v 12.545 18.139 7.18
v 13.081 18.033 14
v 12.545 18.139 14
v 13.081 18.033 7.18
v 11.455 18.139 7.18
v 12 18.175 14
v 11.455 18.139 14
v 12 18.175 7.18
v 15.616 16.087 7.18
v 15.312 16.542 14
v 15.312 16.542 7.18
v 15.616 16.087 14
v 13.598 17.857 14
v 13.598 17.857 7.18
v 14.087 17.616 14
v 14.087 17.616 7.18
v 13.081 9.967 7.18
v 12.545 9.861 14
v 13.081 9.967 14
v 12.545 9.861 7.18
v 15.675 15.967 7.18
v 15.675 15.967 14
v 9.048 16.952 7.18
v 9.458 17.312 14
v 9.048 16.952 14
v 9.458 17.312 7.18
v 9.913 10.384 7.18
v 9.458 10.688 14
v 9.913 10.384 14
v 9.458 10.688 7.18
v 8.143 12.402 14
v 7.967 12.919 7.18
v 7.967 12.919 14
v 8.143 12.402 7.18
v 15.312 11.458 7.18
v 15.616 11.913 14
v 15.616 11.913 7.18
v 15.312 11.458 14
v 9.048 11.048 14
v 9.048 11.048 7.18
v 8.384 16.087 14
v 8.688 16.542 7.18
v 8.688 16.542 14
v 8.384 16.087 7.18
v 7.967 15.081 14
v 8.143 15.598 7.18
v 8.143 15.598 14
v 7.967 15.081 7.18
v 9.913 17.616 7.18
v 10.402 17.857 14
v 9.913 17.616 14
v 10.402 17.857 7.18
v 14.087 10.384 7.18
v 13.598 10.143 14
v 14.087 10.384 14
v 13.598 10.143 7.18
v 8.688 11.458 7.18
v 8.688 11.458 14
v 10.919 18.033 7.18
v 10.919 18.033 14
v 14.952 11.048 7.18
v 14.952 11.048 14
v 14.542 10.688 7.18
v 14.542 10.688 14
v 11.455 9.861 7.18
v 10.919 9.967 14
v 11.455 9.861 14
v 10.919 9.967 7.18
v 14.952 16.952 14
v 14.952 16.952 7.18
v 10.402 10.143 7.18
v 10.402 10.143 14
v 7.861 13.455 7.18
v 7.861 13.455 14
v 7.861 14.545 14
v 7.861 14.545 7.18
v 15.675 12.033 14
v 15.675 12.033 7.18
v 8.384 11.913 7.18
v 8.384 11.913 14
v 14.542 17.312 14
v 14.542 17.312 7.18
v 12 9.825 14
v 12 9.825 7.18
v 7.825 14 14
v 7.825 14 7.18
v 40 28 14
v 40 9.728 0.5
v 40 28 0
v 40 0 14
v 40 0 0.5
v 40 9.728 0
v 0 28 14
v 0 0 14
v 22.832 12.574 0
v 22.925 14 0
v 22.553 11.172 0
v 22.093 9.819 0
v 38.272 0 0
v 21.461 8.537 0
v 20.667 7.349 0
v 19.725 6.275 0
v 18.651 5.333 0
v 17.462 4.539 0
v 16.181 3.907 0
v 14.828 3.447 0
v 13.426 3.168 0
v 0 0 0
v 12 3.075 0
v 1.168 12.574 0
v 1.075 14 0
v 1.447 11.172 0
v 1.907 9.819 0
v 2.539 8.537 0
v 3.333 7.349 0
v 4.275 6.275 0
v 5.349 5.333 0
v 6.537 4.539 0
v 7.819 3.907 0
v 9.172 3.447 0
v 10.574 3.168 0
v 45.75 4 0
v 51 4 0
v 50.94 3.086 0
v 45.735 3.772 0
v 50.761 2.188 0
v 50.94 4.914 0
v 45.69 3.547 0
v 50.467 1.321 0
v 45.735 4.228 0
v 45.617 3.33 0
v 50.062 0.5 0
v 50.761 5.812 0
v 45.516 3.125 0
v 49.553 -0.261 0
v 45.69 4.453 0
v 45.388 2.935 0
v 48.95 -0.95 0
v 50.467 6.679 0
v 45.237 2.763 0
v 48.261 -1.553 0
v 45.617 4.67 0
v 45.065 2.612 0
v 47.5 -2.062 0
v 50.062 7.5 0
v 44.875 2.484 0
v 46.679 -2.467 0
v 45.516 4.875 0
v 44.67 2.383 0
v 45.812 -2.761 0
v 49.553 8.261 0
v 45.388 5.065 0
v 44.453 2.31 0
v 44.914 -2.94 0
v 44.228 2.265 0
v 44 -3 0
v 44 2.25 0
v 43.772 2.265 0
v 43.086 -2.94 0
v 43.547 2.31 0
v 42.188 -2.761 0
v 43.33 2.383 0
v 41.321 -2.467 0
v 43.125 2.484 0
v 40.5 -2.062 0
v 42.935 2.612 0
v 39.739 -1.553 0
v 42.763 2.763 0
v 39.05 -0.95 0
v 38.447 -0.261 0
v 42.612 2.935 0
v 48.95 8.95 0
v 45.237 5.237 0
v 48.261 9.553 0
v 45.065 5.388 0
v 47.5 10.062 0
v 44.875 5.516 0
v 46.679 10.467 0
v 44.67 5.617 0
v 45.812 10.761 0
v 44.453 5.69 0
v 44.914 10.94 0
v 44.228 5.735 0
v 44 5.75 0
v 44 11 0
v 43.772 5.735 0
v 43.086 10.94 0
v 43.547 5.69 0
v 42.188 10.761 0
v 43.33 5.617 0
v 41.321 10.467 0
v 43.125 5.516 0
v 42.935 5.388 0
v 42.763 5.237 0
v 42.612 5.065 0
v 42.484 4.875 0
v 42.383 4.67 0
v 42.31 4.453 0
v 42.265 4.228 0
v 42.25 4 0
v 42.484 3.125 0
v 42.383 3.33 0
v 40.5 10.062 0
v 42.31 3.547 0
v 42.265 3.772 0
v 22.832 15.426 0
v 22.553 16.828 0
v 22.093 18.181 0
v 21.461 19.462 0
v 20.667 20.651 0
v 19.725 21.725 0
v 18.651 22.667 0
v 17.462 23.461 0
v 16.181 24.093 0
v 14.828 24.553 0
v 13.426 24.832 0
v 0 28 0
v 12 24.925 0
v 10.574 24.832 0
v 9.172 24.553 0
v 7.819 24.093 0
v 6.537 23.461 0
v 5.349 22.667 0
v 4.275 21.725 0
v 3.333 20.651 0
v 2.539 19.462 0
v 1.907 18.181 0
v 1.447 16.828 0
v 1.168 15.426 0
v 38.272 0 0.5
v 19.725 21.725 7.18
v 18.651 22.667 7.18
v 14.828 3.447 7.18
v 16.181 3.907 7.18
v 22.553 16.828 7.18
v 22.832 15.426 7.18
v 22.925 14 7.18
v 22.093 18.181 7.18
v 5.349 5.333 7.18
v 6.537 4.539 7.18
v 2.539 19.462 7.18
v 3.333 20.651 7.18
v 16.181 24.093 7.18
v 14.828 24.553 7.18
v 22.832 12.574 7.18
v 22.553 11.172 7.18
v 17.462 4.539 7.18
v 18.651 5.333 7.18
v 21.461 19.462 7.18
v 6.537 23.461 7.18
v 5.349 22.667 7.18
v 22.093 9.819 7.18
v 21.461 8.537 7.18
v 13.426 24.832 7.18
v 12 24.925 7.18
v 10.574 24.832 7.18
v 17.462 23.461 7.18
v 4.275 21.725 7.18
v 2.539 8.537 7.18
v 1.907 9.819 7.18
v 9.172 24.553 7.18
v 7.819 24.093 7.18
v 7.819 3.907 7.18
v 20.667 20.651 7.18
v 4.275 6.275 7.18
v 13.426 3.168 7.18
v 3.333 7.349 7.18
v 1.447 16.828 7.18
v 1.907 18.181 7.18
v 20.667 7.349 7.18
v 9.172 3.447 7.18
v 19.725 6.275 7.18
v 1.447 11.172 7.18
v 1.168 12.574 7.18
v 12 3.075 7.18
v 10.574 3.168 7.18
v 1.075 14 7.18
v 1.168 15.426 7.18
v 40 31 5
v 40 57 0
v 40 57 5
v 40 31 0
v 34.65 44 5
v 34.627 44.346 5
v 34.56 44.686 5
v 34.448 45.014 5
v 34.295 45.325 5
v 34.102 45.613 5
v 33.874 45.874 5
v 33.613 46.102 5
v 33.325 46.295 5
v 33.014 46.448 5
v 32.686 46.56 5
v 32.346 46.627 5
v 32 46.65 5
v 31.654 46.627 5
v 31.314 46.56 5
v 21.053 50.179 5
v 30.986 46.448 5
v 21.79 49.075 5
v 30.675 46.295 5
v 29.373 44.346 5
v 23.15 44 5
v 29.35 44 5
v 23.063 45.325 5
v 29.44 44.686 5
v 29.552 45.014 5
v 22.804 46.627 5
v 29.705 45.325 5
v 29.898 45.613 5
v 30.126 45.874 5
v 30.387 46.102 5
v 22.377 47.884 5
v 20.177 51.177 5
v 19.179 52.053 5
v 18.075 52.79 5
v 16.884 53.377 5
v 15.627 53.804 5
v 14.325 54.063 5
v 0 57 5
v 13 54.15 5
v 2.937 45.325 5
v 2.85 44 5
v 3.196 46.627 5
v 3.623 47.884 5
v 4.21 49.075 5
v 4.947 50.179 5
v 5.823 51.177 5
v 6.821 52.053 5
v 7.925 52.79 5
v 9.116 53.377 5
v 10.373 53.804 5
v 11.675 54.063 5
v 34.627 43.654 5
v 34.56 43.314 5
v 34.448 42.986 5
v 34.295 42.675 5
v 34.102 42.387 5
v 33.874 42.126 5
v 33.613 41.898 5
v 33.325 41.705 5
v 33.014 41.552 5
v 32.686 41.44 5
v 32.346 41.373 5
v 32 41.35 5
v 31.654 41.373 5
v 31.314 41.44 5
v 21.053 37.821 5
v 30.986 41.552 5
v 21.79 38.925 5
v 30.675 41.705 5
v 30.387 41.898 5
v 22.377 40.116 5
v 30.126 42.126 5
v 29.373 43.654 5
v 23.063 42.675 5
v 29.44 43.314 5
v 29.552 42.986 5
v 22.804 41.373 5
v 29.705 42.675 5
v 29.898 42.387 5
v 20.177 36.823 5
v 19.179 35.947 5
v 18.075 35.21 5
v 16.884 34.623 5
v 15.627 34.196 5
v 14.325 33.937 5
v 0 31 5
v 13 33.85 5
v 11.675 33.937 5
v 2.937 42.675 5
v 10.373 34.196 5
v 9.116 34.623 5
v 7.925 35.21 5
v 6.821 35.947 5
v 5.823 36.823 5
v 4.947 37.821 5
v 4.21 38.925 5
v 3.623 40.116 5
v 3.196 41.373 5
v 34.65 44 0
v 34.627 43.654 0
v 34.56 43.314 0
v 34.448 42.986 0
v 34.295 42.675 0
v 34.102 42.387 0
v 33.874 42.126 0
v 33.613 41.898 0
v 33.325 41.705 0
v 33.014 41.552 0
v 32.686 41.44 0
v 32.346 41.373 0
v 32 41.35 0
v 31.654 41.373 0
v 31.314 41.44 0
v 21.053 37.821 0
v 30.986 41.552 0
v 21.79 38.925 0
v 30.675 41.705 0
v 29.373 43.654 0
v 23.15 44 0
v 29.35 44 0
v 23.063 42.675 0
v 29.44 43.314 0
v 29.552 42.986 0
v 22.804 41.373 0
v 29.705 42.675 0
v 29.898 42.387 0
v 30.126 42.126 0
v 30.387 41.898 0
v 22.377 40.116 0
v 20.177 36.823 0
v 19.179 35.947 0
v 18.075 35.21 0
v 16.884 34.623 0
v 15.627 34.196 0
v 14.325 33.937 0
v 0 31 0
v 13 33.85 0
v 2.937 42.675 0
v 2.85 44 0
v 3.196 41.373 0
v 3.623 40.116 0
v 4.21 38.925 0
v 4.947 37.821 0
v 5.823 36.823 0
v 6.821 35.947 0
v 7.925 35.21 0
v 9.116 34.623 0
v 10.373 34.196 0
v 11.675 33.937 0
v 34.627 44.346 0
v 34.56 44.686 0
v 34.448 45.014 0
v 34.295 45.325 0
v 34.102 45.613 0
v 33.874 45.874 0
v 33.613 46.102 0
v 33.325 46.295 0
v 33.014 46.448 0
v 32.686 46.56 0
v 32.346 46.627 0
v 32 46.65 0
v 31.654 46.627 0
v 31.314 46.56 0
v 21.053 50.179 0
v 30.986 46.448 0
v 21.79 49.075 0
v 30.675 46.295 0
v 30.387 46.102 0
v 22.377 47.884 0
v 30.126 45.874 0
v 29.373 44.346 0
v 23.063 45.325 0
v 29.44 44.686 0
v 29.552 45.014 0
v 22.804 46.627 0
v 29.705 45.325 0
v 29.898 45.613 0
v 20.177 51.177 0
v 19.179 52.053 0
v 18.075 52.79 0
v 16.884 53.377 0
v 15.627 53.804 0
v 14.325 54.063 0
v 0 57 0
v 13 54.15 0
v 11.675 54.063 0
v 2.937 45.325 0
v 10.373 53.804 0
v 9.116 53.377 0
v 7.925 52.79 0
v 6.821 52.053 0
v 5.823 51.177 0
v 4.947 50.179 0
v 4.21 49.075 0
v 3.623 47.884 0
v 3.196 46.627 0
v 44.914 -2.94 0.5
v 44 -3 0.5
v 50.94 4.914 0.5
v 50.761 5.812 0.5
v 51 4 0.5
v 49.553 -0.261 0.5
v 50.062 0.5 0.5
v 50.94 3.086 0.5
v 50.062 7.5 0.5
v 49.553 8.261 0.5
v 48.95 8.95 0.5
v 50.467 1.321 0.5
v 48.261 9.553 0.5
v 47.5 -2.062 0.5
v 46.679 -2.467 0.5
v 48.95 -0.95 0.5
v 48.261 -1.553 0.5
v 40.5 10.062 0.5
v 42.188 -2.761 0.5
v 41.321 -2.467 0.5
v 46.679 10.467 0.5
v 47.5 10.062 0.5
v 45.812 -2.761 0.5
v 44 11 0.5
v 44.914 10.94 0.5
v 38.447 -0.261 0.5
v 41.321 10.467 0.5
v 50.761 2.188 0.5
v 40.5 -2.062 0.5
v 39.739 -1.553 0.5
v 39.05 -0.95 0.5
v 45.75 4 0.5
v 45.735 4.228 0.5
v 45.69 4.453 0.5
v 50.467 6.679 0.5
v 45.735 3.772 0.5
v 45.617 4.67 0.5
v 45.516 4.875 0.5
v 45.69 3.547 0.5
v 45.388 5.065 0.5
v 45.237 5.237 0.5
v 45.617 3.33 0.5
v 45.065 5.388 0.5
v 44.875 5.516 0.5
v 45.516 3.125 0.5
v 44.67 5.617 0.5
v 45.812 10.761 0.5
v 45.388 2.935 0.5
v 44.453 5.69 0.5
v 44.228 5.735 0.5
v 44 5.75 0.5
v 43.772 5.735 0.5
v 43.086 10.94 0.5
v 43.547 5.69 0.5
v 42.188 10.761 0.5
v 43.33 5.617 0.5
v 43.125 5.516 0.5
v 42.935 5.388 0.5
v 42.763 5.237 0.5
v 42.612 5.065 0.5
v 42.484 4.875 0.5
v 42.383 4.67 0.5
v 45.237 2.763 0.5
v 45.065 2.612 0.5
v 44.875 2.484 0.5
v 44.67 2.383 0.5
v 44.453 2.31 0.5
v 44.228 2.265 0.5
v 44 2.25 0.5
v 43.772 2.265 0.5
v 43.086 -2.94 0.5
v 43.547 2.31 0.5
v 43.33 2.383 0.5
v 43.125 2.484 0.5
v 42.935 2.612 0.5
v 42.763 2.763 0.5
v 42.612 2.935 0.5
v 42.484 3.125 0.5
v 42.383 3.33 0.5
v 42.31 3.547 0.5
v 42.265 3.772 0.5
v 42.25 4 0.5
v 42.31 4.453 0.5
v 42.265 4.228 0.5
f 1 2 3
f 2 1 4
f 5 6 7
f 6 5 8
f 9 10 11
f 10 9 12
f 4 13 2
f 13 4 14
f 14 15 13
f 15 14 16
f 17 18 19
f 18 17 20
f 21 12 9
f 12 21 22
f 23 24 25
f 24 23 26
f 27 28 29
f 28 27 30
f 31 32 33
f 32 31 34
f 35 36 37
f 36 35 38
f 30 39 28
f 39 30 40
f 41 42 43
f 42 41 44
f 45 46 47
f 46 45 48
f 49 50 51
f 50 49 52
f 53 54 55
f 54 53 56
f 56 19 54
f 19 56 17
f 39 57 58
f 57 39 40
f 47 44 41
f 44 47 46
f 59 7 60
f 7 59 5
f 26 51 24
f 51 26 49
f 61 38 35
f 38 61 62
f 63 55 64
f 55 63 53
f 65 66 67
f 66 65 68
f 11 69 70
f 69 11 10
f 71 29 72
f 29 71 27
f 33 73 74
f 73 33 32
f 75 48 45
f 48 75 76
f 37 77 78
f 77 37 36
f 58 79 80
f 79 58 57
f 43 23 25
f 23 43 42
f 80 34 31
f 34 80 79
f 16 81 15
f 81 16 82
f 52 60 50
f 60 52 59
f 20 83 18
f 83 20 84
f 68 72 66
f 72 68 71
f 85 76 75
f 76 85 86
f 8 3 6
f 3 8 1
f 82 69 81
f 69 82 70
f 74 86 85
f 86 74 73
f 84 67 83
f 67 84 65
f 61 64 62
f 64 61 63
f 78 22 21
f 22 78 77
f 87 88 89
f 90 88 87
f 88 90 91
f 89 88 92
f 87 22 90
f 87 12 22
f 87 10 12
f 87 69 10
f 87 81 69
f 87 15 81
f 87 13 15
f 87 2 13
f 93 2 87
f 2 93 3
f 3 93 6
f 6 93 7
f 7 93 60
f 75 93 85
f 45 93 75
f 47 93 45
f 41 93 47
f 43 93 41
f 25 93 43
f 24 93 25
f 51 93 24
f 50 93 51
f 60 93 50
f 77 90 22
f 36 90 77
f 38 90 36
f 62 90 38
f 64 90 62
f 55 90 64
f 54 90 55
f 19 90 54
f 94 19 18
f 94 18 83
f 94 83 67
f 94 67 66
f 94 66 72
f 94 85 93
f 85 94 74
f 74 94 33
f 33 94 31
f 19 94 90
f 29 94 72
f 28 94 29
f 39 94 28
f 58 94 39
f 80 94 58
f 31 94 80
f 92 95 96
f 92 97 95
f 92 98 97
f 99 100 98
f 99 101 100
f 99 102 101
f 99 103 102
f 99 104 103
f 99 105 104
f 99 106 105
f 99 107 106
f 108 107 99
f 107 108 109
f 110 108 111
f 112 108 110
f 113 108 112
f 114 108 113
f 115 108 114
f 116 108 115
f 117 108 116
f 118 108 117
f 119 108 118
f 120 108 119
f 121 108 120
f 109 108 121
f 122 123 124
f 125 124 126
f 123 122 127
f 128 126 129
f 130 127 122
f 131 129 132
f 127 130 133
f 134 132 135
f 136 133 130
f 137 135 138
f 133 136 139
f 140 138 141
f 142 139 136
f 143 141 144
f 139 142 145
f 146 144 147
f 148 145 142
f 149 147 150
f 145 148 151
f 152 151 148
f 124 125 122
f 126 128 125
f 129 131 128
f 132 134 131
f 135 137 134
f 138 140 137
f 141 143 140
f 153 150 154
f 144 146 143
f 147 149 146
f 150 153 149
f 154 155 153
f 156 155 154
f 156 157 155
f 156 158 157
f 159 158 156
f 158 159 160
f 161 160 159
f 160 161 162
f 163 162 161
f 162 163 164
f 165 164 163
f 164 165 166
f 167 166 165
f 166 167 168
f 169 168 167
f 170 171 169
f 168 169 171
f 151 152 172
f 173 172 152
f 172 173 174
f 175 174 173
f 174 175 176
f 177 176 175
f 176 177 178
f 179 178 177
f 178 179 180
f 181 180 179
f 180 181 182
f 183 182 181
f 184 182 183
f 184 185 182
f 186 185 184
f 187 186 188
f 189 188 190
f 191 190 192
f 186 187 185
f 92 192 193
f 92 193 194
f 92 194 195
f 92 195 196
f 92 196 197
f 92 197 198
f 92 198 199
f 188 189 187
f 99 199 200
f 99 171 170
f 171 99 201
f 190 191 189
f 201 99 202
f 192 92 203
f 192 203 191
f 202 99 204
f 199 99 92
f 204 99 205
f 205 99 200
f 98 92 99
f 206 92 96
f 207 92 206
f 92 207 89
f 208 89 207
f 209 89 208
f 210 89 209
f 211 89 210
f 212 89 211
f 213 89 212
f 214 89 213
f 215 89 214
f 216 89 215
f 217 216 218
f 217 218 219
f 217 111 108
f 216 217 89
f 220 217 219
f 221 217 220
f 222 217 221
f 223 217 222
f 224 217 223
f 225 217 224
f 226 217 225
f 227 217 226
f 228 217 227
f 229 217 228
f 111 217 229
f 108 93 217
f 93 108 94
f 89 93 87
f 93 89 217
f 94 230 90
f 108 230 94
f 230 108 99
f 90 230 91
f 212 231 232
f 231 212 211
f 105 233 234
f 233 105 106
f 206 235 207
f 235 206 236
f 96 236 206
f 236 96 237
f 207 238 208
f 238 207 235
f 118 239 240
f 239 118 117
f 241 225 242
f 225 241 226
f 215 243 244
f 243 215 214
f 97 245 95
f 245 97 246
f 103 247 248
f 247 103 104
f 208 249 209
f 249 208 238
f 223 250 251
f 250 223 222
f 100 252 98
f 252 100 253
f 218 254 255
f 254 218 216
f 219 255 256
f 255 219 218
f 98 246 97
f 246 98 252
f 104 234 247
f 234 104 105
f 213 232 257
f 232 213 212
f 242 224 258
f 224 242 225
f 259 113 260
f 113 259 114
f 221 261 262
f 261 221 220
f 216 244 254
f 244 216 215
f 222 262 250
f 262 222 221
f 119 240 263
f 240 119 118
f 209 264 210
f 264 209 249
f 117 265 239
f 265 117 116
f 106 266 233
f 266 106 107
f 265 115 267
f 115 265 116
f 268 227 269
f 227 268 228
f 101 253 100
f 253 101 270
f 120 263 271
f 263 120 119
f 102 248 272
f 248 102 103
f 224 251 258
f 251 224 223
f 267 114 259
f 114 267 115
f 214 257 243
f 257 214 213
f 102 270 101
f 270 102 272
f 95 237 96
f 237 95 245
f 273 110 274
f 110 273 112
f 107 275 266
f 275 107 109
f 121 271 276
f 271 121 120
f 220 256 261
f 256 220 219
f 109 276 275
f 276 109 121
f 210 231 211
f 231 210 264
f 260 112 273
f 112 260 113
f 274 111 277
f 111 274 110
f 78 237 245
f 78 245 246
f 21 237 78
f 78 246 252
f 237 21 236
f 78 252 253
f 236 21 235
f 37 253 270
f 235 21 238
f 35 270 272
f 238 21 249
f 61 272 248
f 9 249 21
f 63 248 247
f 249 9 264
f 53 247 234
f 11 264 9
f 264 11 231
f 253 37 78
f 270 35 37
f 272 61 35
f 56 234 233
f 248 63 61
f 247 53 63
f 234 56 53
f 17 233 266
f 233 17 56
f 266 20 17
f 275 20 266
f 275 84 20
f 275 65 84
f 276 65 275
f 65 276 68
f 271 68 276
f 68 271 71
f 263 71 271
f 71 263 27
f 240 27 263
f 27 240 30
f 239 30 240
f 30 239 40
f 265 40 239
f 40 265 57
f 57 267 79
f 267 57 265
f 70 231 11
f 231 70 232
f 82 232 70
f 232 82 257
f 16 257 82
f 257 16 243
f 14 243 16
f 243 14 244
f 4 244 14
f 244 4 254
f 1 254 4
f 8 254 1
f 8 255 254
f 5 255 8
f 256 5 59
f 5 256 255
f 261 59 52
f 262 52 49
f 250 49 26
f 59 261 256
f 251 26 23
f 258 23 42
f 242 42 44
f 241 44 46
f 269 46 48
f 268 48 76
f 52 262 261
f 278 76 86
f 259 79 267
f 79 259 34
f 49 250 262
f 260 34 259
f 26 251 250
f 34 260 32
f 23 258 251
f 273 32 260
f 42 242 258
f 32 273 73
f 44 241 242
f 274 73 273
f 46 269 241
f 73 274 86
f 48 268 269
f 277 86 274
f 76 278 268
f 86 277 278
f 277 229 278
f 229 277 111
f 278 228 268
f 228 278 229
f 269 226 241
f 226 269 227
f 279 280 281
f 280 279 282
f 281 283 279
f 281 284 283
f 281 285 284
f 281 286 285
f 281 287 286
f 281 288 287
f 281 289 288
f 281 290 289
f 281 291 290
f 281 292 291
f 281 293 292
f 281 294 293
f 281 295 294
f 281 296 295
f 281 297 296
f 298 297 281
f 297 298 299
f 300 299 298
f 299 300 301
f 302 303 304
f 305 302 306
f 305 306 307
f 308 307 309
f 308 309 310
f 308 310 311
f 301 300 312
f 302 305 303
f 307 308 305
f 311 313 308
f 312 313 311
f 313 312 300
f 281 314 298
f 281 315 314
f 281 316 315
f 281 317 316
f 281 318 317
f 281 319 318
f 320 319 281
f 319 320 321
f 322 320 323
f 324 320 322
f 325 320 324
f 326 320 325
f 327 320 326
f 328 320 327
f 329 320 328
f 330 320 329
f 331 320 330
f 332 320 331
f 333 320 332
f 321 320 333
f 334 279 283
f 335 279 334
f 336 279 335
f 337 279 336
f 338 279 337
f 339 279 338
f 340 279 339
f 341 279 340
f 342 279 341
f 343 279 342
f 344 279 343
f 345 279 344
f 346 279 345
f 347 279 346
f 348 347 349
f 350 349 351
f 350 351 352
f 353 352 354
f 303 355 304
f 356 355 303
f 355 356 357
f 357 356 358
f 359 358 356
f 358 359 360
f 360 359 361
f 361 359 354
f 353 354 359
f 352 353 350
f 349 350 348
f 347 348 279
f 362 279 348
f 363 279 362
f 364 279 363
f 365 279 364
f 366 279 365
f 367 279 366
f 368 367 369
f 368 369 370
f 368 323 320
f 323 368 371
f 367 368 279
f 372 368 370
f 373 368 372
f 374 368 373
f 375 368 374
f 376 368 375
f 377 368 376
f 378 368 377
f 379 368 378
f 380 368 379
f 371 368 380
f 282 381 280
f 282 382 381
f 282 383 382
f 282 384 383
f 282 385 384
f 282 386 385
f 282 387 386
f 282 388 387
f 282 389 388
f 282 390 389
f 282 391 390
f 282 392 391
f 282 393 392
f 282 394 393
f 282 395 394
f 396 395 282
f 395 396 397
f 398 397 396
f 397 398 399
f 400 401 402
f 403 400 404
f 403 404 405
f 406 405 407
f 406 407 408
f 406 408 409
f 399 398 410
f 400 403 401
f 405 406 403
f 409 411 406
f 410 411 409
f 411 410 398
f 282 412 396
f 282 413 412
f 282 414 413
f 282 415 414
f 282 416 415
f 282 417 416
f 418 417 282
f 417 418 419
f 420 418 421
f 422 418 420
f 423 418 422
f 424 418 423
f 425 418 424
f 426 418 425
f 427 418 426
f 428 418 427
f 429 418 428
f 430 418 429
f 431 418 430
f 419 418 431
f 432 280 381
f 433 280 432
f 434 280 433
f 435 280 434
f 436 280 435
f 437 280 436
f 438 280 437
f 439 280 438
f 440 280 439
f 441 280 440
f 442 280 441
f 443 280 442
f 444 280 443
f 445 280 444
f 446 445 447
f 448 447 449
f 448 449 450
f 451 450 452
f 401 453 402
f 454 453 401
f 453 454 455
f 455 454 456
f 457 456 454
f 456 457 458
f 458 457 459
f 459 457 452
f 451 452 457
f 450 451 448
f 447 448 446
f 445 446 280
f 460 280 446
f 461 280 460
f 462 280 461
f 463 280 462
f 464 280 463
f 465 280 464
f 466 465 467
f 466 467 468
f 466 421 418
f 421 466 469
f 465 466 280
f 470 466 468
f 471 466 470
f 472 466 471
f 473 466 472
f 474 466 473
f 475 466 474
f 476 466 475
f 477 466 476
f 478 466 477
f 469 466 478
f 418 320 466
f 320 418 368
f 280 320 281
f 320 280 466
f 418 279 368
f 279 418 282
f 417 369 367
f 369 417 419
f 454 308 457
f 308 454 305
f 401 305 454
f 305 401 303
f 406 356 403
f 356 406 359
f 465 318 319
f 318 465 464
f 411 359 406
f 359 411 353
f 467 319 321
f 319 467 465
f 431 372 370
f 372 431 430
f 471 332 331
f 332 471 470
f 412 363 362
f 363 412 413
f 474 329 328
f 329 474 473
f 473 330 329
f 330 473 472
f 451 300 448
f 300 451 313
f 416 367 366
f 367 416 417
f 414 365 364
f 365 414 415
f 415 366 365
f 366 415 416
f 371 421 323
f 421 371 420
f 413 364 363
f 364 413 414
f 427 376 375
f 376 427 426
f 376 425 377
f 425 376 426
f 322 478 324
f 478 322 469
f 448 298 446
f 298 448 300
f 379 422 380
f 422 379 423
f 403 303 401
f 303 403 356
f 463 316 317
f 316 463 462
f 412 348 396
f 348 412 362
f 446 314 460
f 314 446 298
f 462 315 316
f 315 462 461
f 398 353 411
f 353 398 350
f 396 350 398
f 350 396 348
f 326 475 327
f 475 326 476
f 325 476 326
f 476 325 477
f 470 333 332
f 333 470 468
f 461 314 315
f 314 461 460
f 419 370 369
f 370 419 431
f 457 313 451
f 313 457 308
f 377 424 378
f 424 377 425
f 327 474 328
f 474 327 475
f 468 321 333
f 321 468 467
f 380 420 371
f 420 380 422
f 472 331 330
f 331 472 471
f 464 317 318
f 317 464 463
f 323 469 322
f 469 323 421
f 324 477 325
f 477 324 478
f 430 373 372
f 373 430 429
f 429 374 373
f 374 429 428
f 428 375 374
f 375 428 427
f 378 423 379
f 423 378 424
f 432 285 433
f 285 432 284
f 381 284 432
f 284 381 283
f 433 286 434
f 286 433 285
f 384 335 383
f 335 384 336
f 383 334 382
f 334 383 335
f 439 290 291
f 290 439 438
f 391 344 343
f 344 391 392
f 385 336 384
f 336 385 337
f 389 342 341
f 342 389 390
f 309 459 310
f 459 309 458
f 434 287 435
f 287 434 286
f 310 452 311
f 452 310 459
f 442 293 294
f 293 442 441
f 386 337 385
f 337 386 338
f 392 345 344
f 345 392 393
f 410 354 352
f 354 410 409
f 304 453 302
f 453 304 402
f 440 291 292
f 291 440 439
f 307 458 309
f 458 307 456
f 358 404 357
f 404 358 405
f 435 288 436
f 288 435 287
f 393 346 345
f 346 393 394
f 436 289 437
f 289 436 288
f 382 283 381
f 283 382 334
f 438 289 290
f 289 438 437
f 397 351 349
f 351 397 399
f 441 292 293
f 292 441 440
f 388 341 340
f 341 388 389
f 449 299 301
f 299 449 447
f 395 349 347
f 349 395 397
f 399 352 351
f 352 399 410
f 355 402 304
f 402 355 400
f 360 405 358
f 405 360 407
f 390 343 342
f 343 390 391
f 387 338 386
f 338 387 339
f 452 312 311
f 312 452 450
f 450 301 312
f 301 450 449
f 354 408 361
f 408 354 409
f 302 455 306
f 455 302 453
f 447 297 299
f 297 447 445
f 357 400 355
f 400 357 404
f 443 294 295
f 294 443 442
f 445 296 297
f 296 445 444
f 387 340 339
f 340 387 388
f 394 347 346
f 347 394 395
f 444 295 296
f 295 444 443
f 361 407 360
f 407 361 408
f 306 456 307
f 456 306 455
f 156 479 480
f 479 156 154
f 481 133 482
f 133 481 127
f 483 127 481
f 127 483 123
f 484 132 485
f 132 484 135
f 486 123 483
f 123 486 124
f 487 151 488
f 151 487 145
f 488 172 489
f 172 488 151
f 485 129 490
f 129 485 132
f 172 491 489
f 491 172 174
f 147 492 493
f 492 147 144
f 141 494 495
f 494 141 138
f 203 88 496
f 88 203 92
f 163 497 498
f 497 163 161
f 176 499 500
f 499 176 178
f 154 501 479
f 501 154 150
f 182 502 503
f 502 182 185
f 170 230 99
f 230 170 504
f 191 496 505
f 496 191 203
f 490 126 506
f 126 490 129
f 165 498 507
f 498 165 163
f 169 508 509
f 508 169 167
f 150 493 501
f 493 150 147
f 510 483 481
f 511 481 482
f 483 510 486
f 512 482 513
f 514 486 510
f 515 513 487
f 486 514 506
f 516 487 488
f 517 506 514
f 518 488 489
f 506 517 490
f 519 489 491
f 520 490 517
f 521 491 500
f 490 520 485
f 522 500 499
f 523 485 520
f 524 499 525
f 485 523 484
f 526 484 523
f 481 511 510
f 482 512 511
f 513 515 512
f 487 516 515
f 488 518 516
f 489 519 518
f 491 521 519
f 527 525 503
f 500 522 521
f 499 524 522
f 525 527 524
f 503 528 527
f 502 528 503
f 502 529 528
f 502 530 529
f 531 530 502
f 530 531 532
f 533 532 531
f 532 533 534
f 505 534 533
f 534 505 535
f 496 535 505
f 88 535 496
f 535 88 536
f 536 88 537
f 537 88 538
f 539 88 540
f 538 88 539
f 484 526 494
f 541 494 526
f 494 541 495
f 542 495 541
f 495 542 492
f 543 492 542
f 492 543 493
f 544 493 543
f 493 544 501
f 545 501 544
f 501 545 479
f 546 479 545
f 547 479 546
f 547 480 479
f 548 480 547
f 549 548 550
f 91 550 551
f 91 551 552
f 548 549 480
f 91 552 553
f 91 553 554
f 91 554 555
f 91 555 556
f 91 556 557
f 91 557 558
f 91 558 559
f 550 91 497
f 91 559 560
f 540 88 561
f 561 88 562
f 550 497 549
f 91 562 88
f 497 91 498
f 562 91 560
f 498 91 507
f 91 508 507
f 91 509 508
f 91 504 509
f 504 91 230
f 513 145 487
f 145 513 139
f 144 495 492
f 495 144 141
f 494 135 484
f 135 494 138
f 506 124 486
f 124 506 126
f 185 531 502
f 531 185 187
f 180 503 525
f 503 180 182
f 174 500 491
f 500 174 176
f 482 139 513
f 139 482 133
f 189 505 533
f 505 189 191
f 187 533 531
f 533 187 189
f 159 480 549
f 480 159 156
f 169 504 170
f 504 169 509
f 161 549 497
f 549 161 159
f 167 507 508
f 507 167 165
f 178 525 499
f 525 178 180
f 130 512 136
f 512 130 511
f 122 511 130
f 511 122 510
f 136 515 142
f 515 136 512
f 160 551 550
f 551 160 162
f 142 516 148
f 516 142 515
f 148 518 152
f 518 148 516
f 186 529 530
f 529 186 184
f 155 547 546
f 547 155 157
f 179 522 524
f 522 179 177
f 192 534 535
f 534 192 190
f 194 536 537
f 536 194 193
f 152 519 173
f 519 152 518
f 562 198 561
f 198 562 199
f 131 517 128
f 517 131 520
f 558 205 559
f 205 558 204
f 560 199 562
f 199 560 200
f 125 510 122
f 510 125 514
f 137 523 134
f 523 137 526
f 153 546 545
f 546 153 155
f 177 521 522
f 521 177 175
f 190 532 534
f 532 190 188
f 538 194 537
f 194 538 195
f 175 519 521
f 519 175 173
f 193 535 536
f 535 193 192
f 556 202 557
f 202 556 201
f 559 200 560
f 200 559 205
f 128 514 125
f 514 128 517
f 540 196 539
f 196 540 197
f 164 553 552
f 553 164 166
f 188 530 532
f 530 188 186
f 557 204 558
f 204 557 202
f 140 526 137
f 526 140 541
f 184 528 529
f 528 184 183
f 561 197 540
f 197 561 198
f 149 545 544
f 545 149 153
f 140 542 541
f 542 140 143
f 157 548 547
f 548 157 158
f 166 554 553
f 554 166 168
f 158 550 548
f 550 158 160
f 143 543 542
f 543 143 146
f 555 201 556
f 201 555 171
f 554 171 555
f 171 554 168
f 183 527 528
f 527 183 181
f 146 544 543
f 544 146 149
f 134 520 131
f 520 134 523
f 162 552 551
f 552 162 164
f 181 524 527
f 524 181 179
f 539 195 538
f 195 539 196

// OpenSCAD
// file: parameters.scad
// =============================================================================
// Gen-BU — nightly 2026-10-10 (physics_scorer, honest magpylib watts)
// New pole/coil ratio on a much bigger ring: twelve narrow 26.4° bobbins (r 52–82 mm, 13.5 mm build, 8.1 mm copper) under 8 poles pushed out to R66, so each coil spans 120° electrical with a short mean turn while the poles sit 52 mm apart (less pole-to-pole leakage) and move faster. 8p/12c was dismissed on earlier nights at 3.2 W because it was only scanned on the R50 ring; tonight it climbs steadily with ring radius (R50 3.39 → R57 4.58 → R59.5 5.18 → R66 6.08 W scan). Diametric Ø5 assists turned out to LOWER this layout, so none are fitted. A ring this big no longer fits a one-plate layout with disc endbells, so the endbells become two crossed 44 mm bar bearing bridges, which is what keeps it on one 410 mm plate.
// Clocking 0 deg (magnets N facing S) + D-flat keyed bore + index notch + flip-symmetric hole map.
// Windable 2-piece bobbin; turns = physics_scorer turns_fit; copper only between flanges.
// Steel back-iron: 2× Ø158 × 4.76 mm (3/16") mild-steel discs (steel_backiron_disc.dxf); magnets sit ON the steel
// (through-pockets) -> score with --back-iron. Night 2026-10-10.
// =============================================================================
topology            = "dual_rotor";

// --- Wire / winding (physics_scorer winding-fit) -------------------------------
wire_awg            = 26;
wire_od             = 0.45;     // insulated OD mm (bare 0.405)
fill_realistic      = 0.65;     // insulated-wire area / window (DENSE layered wind with a jig; scorer cap 0.65)
turns               = 446;       // = physics_scorer turns_fit (do NOT raise)
coil_former_type    = "bobbin";
coil_core_inset     = 13.50;     // radial copper build: hub = copper boundary inset by this
wind_build_axial    = 0.0;      // nothing proud of the flanges
wind_build_radial   = 0.0;

// --- Bobbin (base + lid) ---------------------------------------------------------
coil_id_r           = 52.00;    // copper boundary sector
coil_od_r           = 82.00;
span_deg            = 26.36;    // = pitch - 2*asin((wall+0.85)/coil_id_r) -> >=1.2 mm stator web
former_web          = 8.10;     // copper height between flanges (TALL copper: steel keeps Bz up)
flange_t            = 0.80;     // >= 0.8 mm FDM wall rule (tall winds push on the flanges)
wall                = 0.80;     // flange lip beyond copper
former_bare_h       = former_web + 2 * flange_t;
coil_envelope_h     = former_bare_h + 2 * wind_build_axial;
tab_w               = 7.0;
tab_len             = 7.0;
tab_h               = former_bare_h / 2;
pin_d               = 1.9;      // 1.75 mm filament locating pin
coil_mount_r        = coil_od_r + 0.2 + 4.0;
lead_y              = 1.6;
lead_slot_w         = 0.9;
lead_groove_d       = 0.6;

// --- Gap -------------------------------------------------------------------------
run_clear           = 0.50;     // rotor face -> flange
gap_spacer_h        = run_clear + wind_build_axial;
m2m                 = coil_envelope_h + 2 * run_clear;   // rotor face to rotor face (= gap_sleeve length)

// --- Stator ----------------------------------------------------------------------
coil_stations       = 12;
bay_clear           = 0.25;
stator_thick        = former_bare_h;                        // bobbins flush both faces
stator_od           = 182;
shaft_clear_stator  = 14.0;     // stator is static; gap sleeve OD 12 spins inside

// --- Rotor(s) --------------------------------------------------------------------
magnet_Br           = 1.43;     // N52
magnet_d_large      = 20.0;
magnet_h_large      = 5.0;      // one O20x5 per pocket
magnet_h_small      = 5.0;      // unused: no O5 pockets in this kit
halbach_magnetisation = "none";  // NO O5 assist magnets in this kit (scan: they lower the 4-pole score)
rotor_b_same_axis   = true;     // same-index magnets share one axis: N faces S across the gap
large_pocket_d      = 20.3;
small_pocket_d      = 5.3;
pocket_h            = 5.00;     // THROUGH the carrier: magnet back face sits on the steel disc (FLUSH seat: carrier = magnet height, magnet face level with the rotor face)
large_n             = 8;
R_large             = 66.0;
small_r_list        = [];       // no O5 pockets
carrier_od          = 158.0;
carrier_thick       = pocket_h;
hub_h               = 12.0;     // > steel_t + insert: radial set-screw clears the steel
hub_od              = 24.0;     // slim hub so the M4 brace rods fit at R~18 inside the coil ring
hub_insert_d        = 4.0;      // M3 heat-set insert, radial, bears on the D-flat
rotor_b_offset_deg  = 0.0;      // CLOCKING: magnets directly opposite
shaft_key           = "dflat";
dflat_depth         = 0.5;      // 8 mm shaft with 0.5 mm flat (7.5 across flat)
index_notch_d       = 3.0;

// --- Steel back-iron (buyable laser-cut) -------------------------------------------
steel_t             = 4.76;      // mild steel thickness (image method ignores it; sized from steel_flux.py so the return path stays well below saturation)
steel_center_hole   = 26.0;     // slips over the rotor hub (OD 24)
steel_od            = carrier_od;   // steel disc OD = rotor carrier OD

// --- Modular MAX interface ----------------------------------------------------------
shaft_bore          = 8.35;
dflat_x             = 4.0 - dflat_depth + (shaft_bore - 8.0) / 2;
bearing_d           = 21.85;
bearing_h           = 7.2;
m3_clear            = 3.5;
bolt_r_inner        = 30.0;     // M3 steel-disc clamp bolts (inside the magnet ring)
bolt_n_inner        = 4;
bolt_inner_angles   = [0, 90, 180, 270];
bolt_r_outer        = 44.0;     // second M3 steel-disc clamp ring
bolt_outer_angles   = [67.5, 112.5, 247.5, 292.5];
flange_bolt_r       = 85.0;     // frame rods: OUTSIDE the rotor OD (rotors spin inside them)
flange_bolt_n       = 4;
flange_bolt_offset  = 45.00;    // between coil stations -> never cuts a lead groove/tab
brace_r             = 18.0;
brace_d             = 4.3;      // temporary M4 jack rods (assembly only)
brace_n             = 4;
brace_angles        = [45, 135, 225, 315];          // flip-symmetric

spacer_pad_od       = 14.0;
spacer_pad_id       = m3_clear;
endbell_od          = 180.0;
endbell_thick       = 8.0;
endbell_shaft_clear = 10.0;
collar_h            = 10.0;
standoff_od         = 9.0;
frame_standoff_h    = run_clear + carrier_thick + hub_h + collar_h + 2.0;
sleeve_od           = 12.0;
plate_max_mm        = 410;

$fn = 64;
// main file
// Gen-BU — fit coupon: O20/O5 THROUGH pockets at carrier thickness (test on a steel offcut), 608 seat,
// D-flat bore, gap shim, and one bobbin-bay slice (bobbin footprint + bay_clear) to test former fit.
include <parameters.scad>;
$fn = 48;
// D-flat keyed bore: flat faces +X (angle 0 = magnet pocket 0 = index notch)
module dflat_bore(h) {
    intersection() {
        cylinder(d=shaft_bore, h=h);
        translate([-shaft_bore, -shaft_bore, 0]) cube([shaft_bore + dflat_x, 2*shaft_bore, h]);
    }
}
module sector_2d(r_in, r_out, ang) {
    polygon([
        for (a = [-ang/2 : ang/24 : ang/2]) [r_in*cos(a), r_in*sin(a)],
        for (a = [ang/2 : -ang/24 : -ang/2]) [r_out*cos(a), r_out*sin(a)]
    ]);
}
module footprint_2d() { offset(r=wall) sector_2d(coil_id_r, coil_od_r, span_deg); }
module hub_2d()       { offset(delta=-coil_core_inset) sector_2d(coil_id_r, coil_od_r, span_deg); }

block_w = 40; block_d = 28; block_h = 14;
difference() {
    cube([block_w, block_d, block_h]);
    translate([12, block_d/2, -0.02]) cylinder(d=bearing_d, h=bearing_h);
    translate([12, block_d/2, -0.1]) dflat_bore(block_h + 1);
}
translate([0, block_d + 3, 0]) difference() {
    cube([40, 26, carrier_thick]);
    translate([13, 13, -0.1]) cylinder(d=large_pocket_d, h=carrier_thick + 0.2);
    translate([32, 13, -0.1]) cylinder(d=small_pocket_d, h=carrier_thick + 0.2);
}
translate([block_w + 4, 4, 0])
    difference() {
        cylinder(d=spacer_pad_od, h=gap_spacer_h);
        translate([0, 0, -0.1]) cylinder(d=spacer_pad_id, h=gap_spacer_h + 0.2);
    }
